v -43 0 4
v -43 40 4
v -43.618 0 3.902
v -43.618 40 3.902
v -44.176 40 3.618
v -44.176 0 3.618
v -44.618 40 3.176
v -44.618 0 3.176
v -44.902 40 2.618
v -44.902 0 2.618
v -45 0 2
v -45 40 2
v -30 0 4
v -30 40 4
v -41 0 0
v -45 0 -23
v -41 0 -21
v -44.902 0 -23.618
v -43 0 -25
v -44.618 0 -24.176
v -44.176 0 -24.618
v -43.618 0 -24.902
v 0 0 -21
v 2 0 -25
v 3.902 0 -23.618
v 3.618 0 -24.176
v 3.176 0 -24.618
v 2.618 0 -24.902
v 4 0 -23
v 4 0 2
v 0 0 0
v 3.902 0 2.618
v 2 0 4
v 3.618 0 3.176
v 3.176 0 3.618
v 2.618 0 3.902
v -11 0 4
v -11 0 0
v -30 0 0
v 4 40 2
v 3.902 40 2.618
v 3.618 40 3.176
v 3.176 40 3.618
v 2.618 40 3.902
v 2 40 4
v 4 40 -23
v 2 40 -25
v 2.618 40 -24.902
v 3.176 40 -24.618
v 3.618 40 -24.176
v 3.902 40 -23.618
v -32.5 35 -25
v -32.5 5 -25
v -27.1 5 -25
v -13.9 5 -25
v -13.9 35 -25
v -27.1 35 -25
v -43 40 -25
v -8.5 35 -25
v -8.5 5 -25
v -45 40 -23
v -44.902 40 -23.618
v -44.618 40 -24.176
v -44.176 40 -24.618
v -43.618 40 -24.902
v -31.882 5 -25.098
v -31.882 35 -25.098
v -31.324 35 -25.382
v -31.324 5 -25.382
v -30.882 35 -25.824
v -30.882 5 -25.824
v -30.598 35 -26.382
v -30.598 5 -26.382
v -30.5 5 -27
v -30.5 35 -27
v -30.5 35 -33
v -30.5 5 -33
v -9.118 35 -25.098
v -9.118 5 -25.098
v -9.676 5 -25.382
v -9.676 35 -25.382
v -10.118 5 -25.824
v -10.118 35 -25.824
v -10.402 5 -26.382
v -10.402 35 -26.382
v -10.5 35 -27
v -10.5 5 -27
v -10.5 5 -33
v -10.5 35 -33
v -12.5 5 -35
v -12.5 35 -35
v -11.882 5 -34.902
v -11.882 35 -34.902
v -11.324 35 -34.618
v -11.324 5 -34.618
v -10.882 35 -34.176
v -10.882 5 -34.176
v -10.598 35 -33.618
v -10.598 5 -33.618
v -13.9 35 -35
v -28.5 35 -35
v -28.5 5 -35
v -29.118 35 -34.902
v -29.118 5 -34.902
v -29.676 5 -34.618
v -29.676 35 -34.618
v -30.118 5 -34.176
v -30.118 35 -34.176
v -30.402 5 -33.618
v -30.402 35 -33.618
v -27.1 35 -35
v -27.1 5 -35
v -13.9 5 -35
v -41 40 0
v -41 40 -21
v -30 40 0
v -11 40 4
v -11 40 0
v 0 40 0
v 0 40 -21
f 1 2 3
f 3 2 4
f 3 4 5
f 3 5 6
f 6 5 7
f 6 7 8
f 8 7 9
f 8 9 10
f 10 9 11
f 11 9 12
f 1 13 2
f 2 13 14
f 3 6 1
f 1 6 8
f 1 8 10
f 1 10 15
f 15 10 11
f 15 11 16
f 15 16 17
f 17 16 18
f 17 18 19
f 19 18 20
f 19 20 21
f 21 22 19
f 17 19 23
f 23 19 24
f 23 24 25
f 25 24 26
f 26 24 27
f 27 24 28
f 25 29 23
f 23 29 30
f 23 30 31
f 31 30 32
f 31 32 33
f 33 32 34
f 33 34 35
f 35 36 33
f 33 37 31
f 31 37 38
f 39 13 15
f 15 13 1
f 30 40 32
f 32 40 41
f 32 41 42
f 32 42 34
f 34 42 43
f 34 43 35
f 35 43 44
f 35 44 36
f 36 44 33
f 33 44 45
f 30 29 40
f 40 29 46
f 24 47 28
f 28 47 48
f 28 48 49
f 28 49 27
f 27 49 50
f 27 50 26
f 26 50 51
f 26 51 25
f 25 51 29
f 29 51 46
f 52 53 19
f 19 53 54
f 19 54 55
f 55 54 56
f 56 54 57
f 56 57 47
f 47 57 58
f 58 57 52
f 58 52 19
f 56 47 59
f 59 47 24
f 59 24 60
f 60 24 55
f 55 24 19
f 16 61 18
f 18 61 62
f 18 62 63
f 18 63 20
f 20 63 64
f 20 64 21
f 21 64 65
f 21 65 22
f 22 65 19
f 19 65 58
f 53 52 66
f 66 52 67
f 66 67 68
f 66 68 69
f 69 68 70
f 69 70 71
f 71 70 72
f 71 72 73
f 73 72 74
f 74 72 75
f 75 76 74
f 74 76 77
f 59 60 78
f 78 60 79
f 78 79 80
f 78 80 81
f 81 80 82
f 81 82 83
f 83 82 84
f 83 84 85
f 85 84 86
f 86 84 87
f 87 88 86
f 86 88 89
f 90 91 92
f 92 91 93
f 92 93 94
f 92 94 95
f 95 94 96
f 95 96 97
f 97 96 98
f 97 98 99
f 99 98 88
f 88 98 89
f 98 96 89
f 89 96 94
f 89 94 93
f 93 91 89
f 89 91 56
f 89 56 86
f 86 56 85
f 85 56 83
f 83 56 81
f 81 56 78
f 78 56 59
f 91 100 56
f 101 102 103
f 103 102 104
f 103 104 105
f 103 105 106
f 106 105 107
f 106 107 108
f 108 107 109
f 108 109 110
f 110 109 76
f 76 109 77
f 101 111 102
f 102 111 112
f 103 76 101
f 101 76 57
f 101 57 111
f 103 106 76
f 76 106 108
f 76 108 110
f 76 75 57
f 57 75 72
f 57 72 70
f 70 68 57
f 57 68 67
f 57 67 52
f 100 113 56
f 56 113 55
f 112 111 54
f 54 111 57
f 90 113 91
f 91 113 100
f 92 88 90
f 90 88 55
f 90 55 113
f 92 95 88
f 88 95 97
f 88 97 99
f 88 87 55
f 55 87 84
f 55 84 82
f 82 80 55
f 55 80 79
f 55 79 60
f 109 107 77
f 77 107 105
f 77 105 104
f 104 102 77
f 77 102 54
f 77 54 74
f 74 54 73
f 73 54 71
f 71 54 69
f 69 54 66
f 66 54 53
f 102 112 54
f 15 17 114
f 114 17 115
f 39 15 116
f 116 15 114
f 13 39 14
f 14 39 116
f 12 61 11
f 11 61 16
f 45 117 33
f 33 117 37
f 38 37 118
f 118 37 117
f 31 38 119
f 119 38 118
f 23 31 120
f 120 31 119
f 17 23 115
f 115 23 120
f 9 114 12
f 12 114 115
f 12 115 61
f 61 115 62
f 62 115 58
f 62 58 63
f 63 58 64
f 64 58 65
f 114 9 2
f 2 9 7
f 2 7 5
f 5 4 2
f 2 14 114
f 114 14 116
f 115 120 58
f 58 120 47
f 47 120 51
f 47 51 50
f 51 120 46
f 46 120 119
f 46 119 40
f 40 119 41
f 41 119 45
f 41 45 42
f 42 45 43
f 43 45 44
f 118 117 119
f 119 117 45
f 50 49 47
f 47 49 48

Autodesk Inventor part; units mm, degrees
ref_plane "YZ Plane" through (0, 0, 0) normal (1, 0, 0) x (0, 1, 0)
ref_plane "XZ Plane" through (0, 0, 0) normal (0, 1, 0) x (-1, 0, 0)
ref_plane "XY Plane" through (0, 0, 0) normal (0, 0, 1) x (1, 0, 0)
sketch "스케치1" plane through (0, 0, 0) normal (0, 1, 0) x (-1, 0, 0)
  line L0 (41, 0) -> (41, -21)
  line L1 (41, -21) -> (0, -21)
  line L2 (0, -21) -> (0, 0)
  line L3 (-4, -25) -> (45, -25)
  line L4 (45, -25) -> (45, 4)
  line L5 (-4, 4) -> (-4, -25)
  line L6 (41, -21) -> (0, -21)
  line L7 (30, 0) -> (30, 4)
  line L8 (11, 0) -> (11, 4)
  line L9 (0, 0) -> (11, 0)
  line L10 (30, 0) -> (41, 0)
  line L11 (45, 4) -> (30, 4)
  line L12 (11, 4) -> (-4, 4)
  line L13 (41, 0) -> (30, 0)
  line L14 (11, 0) -> (0, 0)
  dimension "d0" = 41
  dimension "d1" = 21
  dimension "d2" = 4
  dimension "d3" = 15
  dimension "d4" = 15
extrude "돌출1" add sketch "스케치1" along normal blind 40
ref_plane "작업 평면1" through (0, 20, 0) normal (0, 1, 0) x (1, 0, 0)
sketch "스케치3" plane through (0, 20, 0) normal (0, 1, 0) x (1, 0, 0)
  line L0 (-10.5, 25) -> (-10.5, 35)
  line L1 (-10.5, 35) -> (-30.5, 35)
  line L2 (-30.5, 35) -> (-30.5, 25)
  line L3 (4, 25) -> (-45, 25) projected
  line L4 (-20.5, 25) -> (-10.5, 35) construction
  line L5 (-20.5, 25) -> (-30.5, 35) construction
  point P0 (0, 0)
  dimension "d12" = 20
extrude "돌출2" add sketch "스케치3" along normal blind 15 and the other way blind 15
sketch "스케치4" plane through (-10.5, 35, -35) normal (0, 0, -1) x (-1, 0, 0)
  line L0 (20, 0) -> (20, -30) projected
  line L1 (0, 0) -> (20, 0) projected
  line L2 (0, -30) -> (0, 0) projected
  line L3 (20, -30) -> (0, -30) projected
  line L4 (0, 0) -> (20, 0) projected
  line L5 (16.6, -39.6) -> (3.4, -39.6)
  line L6 (3.4, -39.6) -> (3.4, 0)
  line L7 (3.4, 0) -> (16.6, 0)
  line L8 (16.6, 0) -> (16.6, -39.6)
  line L9 (16.6, -39.6) -> (3.4, 0) construction
  line L10 (3.4, -39.6) -> (16.6, 0) construction
  point P0 (-10.5, -35)
  point P1 (10, -19.8)
  point P2 (16.6, -30)
  point P3 (16.6, 0)
  point P4 (3.4, -30)
  point P5 (10, 0)
  dimension "d18" = 13.2
extrude "돌출3" cut sketch "스케치4" against normal blind 10 contours L8 L3 L6 L1
fillet "모깎기1" radius 2 8 edges at (-30.5, 20, -35) (-10.5, 20, -35) (-10.5, 20, -25) (-30.5, 20, -25) (-45, 20, -25) (4, 20, -25) (4, 20, 4) (-45, 20, 4)
properties part number "지그1"
